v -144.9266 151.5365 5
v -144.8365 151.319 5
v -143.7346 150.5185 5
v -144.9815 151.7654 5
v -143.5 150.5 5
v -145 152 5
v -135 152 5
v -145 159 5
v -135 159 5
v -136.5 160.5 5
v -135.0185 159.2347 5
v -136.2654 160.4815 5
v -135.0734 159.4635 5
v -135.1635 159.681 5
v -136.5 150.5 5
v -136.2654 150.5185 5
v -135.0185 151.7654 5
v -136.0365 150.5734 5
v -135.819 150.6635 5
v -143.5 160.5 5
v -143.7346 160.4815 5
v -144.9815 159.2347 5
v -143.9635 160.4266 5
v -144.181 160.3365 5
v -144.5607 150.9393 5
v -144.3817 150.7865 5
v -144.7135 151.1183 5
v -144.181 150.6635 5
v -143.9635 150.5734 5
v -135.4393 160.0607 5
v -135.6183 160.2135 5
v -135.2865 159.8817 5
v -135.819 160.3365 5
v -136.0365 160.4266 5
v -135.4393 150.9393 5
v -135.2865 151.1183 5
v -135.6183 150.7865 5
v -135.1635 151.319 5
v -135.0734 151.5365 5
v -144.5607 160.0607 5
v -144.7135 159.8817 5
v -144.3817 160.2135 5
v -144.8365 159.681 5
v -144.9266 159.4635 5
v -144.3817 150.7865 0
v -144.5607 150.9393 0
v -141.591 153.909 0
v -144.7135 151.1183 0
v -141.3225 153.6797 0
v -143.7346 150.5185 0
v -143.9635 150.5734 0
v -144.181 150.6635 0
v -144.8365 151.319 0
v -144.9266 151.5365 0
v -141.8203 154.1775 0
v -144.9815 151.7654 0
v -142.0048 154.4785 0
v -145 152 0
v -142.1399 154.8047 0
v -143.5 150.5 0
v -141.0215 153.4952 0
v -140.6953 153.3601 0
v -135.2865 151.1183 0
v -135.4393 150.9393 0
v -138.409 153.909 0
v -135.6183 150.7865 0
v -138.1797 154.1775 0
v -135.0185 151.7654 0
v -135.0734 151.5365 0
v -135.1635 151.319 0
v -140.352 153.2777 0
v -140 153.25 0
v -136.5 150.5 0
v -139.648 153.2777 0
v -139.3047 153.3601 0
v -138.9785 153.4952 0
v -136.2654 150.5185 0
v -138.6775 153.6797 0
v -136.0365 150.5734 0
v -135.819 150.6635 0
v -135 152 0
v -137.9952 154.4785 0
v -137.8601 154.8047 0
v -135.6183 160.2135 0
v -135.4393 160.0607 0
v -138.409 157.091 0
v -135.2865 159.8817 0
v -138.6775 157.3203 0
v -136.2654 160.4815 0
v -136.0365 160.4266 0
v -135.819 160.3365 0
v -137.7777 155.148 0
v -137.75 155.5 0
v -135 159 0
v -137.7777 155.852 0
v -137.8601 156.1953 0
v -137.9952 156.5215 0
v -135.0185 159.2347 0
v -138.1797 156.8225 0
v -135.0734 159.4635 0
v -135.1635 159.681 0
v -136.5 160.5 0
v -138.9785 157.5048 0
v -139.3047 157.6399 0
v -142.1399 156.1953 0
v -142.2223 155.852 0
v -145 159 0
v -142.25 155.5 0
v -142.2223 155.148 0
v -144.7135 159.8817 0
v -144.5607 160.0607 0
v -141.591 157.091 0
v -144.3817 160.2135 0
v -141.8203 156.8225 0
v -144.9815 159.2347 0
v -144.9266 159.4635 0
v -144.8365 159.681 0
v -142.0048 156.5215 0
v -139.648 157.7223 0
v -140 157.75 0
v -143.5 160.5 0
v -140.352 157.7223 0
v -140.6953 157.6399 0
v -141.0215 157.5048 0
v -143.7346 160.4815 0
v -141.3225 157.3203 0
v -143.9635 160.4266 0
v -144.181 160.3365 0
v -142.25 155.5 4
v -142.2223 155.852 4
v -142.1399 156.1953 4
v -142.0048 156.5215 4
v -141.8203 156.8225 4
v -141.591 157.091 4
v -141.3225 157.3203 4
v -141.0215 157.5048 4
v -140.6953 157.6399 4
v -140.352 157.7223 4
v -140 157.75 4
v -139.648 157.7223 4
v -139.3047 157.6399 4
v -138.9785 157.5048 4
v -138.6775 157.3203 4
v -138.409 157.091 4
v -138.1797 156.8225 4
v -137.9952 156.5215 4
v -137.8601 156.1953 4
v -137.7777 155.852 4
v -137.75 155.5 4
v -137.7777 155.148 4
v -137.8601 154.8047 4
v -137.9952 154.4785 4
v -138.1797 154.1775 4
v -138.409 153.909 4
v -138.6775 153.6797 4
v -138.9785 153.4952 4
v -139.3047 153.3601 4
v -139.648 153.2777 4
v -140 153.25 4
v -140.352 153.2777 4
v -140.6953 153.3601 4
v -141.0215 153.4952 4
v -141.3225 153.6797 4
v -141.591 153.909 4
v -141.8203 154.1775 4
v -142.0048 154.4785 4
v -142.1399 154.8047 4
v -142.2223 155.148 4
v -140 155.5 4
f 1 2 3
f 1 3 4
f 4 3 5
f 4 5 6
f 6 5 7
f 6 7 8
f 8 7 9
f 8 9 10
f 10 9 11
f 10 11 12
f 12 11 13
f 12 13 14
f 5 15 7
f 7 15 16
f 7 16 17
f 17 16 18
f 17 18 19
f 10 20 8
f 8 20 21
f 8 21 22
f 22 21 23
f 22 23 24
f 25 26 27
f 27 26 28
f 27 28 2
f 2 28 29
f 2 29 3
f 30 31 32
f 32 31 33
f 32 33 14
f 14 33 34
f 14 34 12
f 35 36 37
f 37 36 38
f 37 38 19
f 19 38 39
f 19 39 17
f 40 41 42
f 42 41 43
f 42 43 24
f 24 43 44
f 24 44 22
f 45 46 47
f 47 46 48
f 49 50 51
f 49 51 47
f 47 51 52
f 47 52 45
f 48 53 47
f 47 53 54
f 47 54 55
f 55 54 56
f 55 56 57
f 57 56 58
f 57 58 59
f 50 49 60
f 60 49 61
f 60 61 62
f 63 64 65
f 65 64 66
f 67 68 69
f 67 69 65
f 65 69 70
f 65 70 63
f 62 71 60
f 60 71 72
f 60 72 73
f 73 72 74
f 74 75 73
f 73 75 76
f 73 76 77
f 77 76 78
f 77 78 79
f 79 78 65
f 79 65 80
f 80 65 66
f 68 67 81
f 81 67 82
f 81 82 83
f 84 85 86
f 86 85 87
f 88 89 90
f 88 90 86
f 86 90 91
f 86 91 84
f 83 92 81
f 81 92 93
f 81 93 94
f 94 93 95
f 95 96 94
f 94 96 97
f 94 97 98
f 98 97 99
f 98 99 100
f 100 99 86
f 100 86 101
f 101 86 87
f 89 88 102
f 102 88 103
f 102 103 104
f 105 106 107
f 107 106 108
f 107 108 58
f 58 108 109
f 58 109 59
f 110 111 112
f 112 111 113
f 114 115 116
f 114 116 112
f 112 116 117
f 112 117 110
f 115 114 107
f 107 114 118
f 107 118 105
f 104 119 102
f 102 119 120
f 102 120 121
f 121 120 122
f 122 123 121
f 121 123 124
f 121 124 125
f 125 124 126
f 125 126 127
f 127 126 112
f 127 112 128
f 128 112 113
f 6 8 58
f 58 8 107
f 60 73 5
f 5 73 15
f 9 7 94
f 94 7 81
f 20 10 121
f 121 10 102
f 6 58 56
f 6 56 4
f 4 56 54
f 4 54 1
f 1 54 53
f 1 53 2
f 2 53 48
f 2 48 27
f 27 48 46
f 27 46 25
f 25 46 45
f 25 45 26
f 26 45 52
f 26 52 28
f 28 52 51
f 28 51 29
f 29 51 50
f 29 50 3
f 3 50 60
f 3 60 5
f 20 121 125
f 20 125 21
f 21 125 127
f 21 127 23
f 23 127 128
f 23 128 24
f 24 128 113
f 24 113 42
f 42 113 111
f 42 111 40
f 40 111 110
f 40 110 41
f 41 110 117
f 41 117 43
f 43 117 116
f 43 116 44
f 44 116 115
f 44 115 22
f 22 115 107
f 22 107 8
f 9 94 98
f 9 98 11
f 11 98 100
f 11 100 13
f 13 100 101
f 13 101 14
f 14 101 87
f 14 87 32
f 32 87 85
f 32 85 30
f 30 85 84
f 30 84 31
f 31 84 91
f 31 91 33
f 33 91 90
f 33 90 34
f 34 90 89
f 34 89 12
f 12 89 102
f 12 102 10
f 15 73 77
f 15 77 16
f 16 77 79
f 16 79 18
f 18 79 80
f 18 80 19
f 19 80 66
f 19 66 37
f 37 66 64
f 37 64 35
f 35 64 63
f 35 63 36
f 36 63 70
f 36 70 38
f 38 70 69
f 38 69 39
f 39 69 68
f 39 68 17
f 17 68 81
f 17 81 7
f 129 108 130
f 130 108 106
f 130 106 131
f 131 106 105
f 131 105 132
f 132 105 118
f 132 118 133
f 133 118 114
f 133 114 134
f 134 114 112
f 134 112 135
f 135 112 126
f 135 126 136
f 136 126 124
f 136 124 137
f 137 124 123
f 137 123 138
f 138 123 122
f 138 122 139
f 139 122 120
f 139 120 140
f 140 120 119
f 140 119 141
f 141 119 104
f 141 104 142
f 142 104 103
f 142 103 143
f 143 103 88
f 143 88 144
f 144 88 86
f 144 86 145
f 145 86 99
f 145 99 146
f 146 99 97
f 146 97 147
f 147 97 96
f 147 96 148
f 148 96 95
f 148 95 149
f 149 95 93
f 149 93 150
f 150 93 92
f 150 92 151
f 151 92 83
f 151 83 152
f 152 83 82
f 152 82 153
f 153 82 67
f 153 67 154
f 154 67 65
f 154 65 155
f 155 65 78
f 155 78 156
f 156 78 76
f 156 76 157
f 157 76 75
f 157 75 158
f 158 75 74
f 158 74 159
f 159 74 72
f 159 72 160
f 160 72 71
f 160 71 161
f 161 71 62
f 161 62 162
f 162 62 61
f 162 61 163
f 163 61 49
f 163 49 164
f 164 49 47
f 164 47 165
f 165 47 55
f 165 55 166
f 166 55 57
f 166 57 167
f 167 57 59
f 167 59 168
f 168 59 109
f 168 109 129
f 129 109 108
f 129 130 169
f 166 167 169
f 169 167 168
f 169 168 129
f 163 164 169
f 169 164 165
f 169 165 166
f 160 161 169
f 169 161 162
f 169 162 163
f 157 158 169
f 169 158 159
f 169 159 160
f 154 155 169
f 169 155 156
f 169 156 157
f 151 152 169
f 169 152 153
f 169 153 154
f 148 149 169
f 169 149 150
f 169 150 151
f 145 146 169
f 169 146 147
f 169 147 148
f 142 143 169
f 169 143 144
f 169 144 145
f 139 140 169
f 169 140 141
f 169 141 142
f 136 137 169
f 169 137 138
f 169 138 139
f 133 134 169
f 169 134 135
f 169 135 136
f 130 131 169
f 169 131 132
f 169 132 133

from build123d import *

# Parameters (mm, degrees)
SKETCH1_W           = 10
SKETCH1_H           = 10
SKETCH1_R           = 1.5
BOSS_EXTRUDE1_DEPTH = 5
FILLET1_R           = 1.5
SKETCH2_R           = 1.6
BOSS_EXTRUDE2_DEPTH = 1
SKETCH3_R           = 2.25
CUT_EXTRUDE1_DEPTH  = 4


with BuildPart() as part:
    # Sketch1 → Boss-Extrude1 (new body)
    with BuildSketch(Plane.XY):
        with Locations((-140, 155.5)):
            Rectangle(SKETCH1_W, SKETCH1_H)
        with Locations((-140, 155.5)):
            Circle(SKETCH1_R, mode=Mode.SUBTRACT)
    extrude(amount=BOSS_EXTRUDE1_DEPTH)

    # Fillet1
    fillet1_edges = [part.edges().sort_by_distance(p)[0] for p in [
        (-145, 160.5, 2.5),
        (-135, 160.5, 2.5),
        (-135, 150.5, 2.5),
        (-145, 150.5, 2.5),
    ]]
    fillet(fillet1_edges, radius=FILLET1_R)

    # Sketch2 → Boss-Extrude2 (add)
    with BuildSketch(Plane.XY.offset(5)):
        with Locations((-140, 155.5)):
            Circle(SKETCH2_R)
    extrude(amount=-BOSS_EXTRUDE2_DEPTH)

    # Sketch3 → Cut-Extrude1 (cut)
    with BuildSketch(Plane(origin=(0, 0, 0), x_dir=(-1, 0, 0), z_dir=(0, 0, -1))):
        with Locations((140, 155.5)):
            Circle(SKETCH3_R)
    extrude(amount=-CUT_EXTRUDE1_DEPTH, mode=Mode.SUBTRACT)


solid = part.part
